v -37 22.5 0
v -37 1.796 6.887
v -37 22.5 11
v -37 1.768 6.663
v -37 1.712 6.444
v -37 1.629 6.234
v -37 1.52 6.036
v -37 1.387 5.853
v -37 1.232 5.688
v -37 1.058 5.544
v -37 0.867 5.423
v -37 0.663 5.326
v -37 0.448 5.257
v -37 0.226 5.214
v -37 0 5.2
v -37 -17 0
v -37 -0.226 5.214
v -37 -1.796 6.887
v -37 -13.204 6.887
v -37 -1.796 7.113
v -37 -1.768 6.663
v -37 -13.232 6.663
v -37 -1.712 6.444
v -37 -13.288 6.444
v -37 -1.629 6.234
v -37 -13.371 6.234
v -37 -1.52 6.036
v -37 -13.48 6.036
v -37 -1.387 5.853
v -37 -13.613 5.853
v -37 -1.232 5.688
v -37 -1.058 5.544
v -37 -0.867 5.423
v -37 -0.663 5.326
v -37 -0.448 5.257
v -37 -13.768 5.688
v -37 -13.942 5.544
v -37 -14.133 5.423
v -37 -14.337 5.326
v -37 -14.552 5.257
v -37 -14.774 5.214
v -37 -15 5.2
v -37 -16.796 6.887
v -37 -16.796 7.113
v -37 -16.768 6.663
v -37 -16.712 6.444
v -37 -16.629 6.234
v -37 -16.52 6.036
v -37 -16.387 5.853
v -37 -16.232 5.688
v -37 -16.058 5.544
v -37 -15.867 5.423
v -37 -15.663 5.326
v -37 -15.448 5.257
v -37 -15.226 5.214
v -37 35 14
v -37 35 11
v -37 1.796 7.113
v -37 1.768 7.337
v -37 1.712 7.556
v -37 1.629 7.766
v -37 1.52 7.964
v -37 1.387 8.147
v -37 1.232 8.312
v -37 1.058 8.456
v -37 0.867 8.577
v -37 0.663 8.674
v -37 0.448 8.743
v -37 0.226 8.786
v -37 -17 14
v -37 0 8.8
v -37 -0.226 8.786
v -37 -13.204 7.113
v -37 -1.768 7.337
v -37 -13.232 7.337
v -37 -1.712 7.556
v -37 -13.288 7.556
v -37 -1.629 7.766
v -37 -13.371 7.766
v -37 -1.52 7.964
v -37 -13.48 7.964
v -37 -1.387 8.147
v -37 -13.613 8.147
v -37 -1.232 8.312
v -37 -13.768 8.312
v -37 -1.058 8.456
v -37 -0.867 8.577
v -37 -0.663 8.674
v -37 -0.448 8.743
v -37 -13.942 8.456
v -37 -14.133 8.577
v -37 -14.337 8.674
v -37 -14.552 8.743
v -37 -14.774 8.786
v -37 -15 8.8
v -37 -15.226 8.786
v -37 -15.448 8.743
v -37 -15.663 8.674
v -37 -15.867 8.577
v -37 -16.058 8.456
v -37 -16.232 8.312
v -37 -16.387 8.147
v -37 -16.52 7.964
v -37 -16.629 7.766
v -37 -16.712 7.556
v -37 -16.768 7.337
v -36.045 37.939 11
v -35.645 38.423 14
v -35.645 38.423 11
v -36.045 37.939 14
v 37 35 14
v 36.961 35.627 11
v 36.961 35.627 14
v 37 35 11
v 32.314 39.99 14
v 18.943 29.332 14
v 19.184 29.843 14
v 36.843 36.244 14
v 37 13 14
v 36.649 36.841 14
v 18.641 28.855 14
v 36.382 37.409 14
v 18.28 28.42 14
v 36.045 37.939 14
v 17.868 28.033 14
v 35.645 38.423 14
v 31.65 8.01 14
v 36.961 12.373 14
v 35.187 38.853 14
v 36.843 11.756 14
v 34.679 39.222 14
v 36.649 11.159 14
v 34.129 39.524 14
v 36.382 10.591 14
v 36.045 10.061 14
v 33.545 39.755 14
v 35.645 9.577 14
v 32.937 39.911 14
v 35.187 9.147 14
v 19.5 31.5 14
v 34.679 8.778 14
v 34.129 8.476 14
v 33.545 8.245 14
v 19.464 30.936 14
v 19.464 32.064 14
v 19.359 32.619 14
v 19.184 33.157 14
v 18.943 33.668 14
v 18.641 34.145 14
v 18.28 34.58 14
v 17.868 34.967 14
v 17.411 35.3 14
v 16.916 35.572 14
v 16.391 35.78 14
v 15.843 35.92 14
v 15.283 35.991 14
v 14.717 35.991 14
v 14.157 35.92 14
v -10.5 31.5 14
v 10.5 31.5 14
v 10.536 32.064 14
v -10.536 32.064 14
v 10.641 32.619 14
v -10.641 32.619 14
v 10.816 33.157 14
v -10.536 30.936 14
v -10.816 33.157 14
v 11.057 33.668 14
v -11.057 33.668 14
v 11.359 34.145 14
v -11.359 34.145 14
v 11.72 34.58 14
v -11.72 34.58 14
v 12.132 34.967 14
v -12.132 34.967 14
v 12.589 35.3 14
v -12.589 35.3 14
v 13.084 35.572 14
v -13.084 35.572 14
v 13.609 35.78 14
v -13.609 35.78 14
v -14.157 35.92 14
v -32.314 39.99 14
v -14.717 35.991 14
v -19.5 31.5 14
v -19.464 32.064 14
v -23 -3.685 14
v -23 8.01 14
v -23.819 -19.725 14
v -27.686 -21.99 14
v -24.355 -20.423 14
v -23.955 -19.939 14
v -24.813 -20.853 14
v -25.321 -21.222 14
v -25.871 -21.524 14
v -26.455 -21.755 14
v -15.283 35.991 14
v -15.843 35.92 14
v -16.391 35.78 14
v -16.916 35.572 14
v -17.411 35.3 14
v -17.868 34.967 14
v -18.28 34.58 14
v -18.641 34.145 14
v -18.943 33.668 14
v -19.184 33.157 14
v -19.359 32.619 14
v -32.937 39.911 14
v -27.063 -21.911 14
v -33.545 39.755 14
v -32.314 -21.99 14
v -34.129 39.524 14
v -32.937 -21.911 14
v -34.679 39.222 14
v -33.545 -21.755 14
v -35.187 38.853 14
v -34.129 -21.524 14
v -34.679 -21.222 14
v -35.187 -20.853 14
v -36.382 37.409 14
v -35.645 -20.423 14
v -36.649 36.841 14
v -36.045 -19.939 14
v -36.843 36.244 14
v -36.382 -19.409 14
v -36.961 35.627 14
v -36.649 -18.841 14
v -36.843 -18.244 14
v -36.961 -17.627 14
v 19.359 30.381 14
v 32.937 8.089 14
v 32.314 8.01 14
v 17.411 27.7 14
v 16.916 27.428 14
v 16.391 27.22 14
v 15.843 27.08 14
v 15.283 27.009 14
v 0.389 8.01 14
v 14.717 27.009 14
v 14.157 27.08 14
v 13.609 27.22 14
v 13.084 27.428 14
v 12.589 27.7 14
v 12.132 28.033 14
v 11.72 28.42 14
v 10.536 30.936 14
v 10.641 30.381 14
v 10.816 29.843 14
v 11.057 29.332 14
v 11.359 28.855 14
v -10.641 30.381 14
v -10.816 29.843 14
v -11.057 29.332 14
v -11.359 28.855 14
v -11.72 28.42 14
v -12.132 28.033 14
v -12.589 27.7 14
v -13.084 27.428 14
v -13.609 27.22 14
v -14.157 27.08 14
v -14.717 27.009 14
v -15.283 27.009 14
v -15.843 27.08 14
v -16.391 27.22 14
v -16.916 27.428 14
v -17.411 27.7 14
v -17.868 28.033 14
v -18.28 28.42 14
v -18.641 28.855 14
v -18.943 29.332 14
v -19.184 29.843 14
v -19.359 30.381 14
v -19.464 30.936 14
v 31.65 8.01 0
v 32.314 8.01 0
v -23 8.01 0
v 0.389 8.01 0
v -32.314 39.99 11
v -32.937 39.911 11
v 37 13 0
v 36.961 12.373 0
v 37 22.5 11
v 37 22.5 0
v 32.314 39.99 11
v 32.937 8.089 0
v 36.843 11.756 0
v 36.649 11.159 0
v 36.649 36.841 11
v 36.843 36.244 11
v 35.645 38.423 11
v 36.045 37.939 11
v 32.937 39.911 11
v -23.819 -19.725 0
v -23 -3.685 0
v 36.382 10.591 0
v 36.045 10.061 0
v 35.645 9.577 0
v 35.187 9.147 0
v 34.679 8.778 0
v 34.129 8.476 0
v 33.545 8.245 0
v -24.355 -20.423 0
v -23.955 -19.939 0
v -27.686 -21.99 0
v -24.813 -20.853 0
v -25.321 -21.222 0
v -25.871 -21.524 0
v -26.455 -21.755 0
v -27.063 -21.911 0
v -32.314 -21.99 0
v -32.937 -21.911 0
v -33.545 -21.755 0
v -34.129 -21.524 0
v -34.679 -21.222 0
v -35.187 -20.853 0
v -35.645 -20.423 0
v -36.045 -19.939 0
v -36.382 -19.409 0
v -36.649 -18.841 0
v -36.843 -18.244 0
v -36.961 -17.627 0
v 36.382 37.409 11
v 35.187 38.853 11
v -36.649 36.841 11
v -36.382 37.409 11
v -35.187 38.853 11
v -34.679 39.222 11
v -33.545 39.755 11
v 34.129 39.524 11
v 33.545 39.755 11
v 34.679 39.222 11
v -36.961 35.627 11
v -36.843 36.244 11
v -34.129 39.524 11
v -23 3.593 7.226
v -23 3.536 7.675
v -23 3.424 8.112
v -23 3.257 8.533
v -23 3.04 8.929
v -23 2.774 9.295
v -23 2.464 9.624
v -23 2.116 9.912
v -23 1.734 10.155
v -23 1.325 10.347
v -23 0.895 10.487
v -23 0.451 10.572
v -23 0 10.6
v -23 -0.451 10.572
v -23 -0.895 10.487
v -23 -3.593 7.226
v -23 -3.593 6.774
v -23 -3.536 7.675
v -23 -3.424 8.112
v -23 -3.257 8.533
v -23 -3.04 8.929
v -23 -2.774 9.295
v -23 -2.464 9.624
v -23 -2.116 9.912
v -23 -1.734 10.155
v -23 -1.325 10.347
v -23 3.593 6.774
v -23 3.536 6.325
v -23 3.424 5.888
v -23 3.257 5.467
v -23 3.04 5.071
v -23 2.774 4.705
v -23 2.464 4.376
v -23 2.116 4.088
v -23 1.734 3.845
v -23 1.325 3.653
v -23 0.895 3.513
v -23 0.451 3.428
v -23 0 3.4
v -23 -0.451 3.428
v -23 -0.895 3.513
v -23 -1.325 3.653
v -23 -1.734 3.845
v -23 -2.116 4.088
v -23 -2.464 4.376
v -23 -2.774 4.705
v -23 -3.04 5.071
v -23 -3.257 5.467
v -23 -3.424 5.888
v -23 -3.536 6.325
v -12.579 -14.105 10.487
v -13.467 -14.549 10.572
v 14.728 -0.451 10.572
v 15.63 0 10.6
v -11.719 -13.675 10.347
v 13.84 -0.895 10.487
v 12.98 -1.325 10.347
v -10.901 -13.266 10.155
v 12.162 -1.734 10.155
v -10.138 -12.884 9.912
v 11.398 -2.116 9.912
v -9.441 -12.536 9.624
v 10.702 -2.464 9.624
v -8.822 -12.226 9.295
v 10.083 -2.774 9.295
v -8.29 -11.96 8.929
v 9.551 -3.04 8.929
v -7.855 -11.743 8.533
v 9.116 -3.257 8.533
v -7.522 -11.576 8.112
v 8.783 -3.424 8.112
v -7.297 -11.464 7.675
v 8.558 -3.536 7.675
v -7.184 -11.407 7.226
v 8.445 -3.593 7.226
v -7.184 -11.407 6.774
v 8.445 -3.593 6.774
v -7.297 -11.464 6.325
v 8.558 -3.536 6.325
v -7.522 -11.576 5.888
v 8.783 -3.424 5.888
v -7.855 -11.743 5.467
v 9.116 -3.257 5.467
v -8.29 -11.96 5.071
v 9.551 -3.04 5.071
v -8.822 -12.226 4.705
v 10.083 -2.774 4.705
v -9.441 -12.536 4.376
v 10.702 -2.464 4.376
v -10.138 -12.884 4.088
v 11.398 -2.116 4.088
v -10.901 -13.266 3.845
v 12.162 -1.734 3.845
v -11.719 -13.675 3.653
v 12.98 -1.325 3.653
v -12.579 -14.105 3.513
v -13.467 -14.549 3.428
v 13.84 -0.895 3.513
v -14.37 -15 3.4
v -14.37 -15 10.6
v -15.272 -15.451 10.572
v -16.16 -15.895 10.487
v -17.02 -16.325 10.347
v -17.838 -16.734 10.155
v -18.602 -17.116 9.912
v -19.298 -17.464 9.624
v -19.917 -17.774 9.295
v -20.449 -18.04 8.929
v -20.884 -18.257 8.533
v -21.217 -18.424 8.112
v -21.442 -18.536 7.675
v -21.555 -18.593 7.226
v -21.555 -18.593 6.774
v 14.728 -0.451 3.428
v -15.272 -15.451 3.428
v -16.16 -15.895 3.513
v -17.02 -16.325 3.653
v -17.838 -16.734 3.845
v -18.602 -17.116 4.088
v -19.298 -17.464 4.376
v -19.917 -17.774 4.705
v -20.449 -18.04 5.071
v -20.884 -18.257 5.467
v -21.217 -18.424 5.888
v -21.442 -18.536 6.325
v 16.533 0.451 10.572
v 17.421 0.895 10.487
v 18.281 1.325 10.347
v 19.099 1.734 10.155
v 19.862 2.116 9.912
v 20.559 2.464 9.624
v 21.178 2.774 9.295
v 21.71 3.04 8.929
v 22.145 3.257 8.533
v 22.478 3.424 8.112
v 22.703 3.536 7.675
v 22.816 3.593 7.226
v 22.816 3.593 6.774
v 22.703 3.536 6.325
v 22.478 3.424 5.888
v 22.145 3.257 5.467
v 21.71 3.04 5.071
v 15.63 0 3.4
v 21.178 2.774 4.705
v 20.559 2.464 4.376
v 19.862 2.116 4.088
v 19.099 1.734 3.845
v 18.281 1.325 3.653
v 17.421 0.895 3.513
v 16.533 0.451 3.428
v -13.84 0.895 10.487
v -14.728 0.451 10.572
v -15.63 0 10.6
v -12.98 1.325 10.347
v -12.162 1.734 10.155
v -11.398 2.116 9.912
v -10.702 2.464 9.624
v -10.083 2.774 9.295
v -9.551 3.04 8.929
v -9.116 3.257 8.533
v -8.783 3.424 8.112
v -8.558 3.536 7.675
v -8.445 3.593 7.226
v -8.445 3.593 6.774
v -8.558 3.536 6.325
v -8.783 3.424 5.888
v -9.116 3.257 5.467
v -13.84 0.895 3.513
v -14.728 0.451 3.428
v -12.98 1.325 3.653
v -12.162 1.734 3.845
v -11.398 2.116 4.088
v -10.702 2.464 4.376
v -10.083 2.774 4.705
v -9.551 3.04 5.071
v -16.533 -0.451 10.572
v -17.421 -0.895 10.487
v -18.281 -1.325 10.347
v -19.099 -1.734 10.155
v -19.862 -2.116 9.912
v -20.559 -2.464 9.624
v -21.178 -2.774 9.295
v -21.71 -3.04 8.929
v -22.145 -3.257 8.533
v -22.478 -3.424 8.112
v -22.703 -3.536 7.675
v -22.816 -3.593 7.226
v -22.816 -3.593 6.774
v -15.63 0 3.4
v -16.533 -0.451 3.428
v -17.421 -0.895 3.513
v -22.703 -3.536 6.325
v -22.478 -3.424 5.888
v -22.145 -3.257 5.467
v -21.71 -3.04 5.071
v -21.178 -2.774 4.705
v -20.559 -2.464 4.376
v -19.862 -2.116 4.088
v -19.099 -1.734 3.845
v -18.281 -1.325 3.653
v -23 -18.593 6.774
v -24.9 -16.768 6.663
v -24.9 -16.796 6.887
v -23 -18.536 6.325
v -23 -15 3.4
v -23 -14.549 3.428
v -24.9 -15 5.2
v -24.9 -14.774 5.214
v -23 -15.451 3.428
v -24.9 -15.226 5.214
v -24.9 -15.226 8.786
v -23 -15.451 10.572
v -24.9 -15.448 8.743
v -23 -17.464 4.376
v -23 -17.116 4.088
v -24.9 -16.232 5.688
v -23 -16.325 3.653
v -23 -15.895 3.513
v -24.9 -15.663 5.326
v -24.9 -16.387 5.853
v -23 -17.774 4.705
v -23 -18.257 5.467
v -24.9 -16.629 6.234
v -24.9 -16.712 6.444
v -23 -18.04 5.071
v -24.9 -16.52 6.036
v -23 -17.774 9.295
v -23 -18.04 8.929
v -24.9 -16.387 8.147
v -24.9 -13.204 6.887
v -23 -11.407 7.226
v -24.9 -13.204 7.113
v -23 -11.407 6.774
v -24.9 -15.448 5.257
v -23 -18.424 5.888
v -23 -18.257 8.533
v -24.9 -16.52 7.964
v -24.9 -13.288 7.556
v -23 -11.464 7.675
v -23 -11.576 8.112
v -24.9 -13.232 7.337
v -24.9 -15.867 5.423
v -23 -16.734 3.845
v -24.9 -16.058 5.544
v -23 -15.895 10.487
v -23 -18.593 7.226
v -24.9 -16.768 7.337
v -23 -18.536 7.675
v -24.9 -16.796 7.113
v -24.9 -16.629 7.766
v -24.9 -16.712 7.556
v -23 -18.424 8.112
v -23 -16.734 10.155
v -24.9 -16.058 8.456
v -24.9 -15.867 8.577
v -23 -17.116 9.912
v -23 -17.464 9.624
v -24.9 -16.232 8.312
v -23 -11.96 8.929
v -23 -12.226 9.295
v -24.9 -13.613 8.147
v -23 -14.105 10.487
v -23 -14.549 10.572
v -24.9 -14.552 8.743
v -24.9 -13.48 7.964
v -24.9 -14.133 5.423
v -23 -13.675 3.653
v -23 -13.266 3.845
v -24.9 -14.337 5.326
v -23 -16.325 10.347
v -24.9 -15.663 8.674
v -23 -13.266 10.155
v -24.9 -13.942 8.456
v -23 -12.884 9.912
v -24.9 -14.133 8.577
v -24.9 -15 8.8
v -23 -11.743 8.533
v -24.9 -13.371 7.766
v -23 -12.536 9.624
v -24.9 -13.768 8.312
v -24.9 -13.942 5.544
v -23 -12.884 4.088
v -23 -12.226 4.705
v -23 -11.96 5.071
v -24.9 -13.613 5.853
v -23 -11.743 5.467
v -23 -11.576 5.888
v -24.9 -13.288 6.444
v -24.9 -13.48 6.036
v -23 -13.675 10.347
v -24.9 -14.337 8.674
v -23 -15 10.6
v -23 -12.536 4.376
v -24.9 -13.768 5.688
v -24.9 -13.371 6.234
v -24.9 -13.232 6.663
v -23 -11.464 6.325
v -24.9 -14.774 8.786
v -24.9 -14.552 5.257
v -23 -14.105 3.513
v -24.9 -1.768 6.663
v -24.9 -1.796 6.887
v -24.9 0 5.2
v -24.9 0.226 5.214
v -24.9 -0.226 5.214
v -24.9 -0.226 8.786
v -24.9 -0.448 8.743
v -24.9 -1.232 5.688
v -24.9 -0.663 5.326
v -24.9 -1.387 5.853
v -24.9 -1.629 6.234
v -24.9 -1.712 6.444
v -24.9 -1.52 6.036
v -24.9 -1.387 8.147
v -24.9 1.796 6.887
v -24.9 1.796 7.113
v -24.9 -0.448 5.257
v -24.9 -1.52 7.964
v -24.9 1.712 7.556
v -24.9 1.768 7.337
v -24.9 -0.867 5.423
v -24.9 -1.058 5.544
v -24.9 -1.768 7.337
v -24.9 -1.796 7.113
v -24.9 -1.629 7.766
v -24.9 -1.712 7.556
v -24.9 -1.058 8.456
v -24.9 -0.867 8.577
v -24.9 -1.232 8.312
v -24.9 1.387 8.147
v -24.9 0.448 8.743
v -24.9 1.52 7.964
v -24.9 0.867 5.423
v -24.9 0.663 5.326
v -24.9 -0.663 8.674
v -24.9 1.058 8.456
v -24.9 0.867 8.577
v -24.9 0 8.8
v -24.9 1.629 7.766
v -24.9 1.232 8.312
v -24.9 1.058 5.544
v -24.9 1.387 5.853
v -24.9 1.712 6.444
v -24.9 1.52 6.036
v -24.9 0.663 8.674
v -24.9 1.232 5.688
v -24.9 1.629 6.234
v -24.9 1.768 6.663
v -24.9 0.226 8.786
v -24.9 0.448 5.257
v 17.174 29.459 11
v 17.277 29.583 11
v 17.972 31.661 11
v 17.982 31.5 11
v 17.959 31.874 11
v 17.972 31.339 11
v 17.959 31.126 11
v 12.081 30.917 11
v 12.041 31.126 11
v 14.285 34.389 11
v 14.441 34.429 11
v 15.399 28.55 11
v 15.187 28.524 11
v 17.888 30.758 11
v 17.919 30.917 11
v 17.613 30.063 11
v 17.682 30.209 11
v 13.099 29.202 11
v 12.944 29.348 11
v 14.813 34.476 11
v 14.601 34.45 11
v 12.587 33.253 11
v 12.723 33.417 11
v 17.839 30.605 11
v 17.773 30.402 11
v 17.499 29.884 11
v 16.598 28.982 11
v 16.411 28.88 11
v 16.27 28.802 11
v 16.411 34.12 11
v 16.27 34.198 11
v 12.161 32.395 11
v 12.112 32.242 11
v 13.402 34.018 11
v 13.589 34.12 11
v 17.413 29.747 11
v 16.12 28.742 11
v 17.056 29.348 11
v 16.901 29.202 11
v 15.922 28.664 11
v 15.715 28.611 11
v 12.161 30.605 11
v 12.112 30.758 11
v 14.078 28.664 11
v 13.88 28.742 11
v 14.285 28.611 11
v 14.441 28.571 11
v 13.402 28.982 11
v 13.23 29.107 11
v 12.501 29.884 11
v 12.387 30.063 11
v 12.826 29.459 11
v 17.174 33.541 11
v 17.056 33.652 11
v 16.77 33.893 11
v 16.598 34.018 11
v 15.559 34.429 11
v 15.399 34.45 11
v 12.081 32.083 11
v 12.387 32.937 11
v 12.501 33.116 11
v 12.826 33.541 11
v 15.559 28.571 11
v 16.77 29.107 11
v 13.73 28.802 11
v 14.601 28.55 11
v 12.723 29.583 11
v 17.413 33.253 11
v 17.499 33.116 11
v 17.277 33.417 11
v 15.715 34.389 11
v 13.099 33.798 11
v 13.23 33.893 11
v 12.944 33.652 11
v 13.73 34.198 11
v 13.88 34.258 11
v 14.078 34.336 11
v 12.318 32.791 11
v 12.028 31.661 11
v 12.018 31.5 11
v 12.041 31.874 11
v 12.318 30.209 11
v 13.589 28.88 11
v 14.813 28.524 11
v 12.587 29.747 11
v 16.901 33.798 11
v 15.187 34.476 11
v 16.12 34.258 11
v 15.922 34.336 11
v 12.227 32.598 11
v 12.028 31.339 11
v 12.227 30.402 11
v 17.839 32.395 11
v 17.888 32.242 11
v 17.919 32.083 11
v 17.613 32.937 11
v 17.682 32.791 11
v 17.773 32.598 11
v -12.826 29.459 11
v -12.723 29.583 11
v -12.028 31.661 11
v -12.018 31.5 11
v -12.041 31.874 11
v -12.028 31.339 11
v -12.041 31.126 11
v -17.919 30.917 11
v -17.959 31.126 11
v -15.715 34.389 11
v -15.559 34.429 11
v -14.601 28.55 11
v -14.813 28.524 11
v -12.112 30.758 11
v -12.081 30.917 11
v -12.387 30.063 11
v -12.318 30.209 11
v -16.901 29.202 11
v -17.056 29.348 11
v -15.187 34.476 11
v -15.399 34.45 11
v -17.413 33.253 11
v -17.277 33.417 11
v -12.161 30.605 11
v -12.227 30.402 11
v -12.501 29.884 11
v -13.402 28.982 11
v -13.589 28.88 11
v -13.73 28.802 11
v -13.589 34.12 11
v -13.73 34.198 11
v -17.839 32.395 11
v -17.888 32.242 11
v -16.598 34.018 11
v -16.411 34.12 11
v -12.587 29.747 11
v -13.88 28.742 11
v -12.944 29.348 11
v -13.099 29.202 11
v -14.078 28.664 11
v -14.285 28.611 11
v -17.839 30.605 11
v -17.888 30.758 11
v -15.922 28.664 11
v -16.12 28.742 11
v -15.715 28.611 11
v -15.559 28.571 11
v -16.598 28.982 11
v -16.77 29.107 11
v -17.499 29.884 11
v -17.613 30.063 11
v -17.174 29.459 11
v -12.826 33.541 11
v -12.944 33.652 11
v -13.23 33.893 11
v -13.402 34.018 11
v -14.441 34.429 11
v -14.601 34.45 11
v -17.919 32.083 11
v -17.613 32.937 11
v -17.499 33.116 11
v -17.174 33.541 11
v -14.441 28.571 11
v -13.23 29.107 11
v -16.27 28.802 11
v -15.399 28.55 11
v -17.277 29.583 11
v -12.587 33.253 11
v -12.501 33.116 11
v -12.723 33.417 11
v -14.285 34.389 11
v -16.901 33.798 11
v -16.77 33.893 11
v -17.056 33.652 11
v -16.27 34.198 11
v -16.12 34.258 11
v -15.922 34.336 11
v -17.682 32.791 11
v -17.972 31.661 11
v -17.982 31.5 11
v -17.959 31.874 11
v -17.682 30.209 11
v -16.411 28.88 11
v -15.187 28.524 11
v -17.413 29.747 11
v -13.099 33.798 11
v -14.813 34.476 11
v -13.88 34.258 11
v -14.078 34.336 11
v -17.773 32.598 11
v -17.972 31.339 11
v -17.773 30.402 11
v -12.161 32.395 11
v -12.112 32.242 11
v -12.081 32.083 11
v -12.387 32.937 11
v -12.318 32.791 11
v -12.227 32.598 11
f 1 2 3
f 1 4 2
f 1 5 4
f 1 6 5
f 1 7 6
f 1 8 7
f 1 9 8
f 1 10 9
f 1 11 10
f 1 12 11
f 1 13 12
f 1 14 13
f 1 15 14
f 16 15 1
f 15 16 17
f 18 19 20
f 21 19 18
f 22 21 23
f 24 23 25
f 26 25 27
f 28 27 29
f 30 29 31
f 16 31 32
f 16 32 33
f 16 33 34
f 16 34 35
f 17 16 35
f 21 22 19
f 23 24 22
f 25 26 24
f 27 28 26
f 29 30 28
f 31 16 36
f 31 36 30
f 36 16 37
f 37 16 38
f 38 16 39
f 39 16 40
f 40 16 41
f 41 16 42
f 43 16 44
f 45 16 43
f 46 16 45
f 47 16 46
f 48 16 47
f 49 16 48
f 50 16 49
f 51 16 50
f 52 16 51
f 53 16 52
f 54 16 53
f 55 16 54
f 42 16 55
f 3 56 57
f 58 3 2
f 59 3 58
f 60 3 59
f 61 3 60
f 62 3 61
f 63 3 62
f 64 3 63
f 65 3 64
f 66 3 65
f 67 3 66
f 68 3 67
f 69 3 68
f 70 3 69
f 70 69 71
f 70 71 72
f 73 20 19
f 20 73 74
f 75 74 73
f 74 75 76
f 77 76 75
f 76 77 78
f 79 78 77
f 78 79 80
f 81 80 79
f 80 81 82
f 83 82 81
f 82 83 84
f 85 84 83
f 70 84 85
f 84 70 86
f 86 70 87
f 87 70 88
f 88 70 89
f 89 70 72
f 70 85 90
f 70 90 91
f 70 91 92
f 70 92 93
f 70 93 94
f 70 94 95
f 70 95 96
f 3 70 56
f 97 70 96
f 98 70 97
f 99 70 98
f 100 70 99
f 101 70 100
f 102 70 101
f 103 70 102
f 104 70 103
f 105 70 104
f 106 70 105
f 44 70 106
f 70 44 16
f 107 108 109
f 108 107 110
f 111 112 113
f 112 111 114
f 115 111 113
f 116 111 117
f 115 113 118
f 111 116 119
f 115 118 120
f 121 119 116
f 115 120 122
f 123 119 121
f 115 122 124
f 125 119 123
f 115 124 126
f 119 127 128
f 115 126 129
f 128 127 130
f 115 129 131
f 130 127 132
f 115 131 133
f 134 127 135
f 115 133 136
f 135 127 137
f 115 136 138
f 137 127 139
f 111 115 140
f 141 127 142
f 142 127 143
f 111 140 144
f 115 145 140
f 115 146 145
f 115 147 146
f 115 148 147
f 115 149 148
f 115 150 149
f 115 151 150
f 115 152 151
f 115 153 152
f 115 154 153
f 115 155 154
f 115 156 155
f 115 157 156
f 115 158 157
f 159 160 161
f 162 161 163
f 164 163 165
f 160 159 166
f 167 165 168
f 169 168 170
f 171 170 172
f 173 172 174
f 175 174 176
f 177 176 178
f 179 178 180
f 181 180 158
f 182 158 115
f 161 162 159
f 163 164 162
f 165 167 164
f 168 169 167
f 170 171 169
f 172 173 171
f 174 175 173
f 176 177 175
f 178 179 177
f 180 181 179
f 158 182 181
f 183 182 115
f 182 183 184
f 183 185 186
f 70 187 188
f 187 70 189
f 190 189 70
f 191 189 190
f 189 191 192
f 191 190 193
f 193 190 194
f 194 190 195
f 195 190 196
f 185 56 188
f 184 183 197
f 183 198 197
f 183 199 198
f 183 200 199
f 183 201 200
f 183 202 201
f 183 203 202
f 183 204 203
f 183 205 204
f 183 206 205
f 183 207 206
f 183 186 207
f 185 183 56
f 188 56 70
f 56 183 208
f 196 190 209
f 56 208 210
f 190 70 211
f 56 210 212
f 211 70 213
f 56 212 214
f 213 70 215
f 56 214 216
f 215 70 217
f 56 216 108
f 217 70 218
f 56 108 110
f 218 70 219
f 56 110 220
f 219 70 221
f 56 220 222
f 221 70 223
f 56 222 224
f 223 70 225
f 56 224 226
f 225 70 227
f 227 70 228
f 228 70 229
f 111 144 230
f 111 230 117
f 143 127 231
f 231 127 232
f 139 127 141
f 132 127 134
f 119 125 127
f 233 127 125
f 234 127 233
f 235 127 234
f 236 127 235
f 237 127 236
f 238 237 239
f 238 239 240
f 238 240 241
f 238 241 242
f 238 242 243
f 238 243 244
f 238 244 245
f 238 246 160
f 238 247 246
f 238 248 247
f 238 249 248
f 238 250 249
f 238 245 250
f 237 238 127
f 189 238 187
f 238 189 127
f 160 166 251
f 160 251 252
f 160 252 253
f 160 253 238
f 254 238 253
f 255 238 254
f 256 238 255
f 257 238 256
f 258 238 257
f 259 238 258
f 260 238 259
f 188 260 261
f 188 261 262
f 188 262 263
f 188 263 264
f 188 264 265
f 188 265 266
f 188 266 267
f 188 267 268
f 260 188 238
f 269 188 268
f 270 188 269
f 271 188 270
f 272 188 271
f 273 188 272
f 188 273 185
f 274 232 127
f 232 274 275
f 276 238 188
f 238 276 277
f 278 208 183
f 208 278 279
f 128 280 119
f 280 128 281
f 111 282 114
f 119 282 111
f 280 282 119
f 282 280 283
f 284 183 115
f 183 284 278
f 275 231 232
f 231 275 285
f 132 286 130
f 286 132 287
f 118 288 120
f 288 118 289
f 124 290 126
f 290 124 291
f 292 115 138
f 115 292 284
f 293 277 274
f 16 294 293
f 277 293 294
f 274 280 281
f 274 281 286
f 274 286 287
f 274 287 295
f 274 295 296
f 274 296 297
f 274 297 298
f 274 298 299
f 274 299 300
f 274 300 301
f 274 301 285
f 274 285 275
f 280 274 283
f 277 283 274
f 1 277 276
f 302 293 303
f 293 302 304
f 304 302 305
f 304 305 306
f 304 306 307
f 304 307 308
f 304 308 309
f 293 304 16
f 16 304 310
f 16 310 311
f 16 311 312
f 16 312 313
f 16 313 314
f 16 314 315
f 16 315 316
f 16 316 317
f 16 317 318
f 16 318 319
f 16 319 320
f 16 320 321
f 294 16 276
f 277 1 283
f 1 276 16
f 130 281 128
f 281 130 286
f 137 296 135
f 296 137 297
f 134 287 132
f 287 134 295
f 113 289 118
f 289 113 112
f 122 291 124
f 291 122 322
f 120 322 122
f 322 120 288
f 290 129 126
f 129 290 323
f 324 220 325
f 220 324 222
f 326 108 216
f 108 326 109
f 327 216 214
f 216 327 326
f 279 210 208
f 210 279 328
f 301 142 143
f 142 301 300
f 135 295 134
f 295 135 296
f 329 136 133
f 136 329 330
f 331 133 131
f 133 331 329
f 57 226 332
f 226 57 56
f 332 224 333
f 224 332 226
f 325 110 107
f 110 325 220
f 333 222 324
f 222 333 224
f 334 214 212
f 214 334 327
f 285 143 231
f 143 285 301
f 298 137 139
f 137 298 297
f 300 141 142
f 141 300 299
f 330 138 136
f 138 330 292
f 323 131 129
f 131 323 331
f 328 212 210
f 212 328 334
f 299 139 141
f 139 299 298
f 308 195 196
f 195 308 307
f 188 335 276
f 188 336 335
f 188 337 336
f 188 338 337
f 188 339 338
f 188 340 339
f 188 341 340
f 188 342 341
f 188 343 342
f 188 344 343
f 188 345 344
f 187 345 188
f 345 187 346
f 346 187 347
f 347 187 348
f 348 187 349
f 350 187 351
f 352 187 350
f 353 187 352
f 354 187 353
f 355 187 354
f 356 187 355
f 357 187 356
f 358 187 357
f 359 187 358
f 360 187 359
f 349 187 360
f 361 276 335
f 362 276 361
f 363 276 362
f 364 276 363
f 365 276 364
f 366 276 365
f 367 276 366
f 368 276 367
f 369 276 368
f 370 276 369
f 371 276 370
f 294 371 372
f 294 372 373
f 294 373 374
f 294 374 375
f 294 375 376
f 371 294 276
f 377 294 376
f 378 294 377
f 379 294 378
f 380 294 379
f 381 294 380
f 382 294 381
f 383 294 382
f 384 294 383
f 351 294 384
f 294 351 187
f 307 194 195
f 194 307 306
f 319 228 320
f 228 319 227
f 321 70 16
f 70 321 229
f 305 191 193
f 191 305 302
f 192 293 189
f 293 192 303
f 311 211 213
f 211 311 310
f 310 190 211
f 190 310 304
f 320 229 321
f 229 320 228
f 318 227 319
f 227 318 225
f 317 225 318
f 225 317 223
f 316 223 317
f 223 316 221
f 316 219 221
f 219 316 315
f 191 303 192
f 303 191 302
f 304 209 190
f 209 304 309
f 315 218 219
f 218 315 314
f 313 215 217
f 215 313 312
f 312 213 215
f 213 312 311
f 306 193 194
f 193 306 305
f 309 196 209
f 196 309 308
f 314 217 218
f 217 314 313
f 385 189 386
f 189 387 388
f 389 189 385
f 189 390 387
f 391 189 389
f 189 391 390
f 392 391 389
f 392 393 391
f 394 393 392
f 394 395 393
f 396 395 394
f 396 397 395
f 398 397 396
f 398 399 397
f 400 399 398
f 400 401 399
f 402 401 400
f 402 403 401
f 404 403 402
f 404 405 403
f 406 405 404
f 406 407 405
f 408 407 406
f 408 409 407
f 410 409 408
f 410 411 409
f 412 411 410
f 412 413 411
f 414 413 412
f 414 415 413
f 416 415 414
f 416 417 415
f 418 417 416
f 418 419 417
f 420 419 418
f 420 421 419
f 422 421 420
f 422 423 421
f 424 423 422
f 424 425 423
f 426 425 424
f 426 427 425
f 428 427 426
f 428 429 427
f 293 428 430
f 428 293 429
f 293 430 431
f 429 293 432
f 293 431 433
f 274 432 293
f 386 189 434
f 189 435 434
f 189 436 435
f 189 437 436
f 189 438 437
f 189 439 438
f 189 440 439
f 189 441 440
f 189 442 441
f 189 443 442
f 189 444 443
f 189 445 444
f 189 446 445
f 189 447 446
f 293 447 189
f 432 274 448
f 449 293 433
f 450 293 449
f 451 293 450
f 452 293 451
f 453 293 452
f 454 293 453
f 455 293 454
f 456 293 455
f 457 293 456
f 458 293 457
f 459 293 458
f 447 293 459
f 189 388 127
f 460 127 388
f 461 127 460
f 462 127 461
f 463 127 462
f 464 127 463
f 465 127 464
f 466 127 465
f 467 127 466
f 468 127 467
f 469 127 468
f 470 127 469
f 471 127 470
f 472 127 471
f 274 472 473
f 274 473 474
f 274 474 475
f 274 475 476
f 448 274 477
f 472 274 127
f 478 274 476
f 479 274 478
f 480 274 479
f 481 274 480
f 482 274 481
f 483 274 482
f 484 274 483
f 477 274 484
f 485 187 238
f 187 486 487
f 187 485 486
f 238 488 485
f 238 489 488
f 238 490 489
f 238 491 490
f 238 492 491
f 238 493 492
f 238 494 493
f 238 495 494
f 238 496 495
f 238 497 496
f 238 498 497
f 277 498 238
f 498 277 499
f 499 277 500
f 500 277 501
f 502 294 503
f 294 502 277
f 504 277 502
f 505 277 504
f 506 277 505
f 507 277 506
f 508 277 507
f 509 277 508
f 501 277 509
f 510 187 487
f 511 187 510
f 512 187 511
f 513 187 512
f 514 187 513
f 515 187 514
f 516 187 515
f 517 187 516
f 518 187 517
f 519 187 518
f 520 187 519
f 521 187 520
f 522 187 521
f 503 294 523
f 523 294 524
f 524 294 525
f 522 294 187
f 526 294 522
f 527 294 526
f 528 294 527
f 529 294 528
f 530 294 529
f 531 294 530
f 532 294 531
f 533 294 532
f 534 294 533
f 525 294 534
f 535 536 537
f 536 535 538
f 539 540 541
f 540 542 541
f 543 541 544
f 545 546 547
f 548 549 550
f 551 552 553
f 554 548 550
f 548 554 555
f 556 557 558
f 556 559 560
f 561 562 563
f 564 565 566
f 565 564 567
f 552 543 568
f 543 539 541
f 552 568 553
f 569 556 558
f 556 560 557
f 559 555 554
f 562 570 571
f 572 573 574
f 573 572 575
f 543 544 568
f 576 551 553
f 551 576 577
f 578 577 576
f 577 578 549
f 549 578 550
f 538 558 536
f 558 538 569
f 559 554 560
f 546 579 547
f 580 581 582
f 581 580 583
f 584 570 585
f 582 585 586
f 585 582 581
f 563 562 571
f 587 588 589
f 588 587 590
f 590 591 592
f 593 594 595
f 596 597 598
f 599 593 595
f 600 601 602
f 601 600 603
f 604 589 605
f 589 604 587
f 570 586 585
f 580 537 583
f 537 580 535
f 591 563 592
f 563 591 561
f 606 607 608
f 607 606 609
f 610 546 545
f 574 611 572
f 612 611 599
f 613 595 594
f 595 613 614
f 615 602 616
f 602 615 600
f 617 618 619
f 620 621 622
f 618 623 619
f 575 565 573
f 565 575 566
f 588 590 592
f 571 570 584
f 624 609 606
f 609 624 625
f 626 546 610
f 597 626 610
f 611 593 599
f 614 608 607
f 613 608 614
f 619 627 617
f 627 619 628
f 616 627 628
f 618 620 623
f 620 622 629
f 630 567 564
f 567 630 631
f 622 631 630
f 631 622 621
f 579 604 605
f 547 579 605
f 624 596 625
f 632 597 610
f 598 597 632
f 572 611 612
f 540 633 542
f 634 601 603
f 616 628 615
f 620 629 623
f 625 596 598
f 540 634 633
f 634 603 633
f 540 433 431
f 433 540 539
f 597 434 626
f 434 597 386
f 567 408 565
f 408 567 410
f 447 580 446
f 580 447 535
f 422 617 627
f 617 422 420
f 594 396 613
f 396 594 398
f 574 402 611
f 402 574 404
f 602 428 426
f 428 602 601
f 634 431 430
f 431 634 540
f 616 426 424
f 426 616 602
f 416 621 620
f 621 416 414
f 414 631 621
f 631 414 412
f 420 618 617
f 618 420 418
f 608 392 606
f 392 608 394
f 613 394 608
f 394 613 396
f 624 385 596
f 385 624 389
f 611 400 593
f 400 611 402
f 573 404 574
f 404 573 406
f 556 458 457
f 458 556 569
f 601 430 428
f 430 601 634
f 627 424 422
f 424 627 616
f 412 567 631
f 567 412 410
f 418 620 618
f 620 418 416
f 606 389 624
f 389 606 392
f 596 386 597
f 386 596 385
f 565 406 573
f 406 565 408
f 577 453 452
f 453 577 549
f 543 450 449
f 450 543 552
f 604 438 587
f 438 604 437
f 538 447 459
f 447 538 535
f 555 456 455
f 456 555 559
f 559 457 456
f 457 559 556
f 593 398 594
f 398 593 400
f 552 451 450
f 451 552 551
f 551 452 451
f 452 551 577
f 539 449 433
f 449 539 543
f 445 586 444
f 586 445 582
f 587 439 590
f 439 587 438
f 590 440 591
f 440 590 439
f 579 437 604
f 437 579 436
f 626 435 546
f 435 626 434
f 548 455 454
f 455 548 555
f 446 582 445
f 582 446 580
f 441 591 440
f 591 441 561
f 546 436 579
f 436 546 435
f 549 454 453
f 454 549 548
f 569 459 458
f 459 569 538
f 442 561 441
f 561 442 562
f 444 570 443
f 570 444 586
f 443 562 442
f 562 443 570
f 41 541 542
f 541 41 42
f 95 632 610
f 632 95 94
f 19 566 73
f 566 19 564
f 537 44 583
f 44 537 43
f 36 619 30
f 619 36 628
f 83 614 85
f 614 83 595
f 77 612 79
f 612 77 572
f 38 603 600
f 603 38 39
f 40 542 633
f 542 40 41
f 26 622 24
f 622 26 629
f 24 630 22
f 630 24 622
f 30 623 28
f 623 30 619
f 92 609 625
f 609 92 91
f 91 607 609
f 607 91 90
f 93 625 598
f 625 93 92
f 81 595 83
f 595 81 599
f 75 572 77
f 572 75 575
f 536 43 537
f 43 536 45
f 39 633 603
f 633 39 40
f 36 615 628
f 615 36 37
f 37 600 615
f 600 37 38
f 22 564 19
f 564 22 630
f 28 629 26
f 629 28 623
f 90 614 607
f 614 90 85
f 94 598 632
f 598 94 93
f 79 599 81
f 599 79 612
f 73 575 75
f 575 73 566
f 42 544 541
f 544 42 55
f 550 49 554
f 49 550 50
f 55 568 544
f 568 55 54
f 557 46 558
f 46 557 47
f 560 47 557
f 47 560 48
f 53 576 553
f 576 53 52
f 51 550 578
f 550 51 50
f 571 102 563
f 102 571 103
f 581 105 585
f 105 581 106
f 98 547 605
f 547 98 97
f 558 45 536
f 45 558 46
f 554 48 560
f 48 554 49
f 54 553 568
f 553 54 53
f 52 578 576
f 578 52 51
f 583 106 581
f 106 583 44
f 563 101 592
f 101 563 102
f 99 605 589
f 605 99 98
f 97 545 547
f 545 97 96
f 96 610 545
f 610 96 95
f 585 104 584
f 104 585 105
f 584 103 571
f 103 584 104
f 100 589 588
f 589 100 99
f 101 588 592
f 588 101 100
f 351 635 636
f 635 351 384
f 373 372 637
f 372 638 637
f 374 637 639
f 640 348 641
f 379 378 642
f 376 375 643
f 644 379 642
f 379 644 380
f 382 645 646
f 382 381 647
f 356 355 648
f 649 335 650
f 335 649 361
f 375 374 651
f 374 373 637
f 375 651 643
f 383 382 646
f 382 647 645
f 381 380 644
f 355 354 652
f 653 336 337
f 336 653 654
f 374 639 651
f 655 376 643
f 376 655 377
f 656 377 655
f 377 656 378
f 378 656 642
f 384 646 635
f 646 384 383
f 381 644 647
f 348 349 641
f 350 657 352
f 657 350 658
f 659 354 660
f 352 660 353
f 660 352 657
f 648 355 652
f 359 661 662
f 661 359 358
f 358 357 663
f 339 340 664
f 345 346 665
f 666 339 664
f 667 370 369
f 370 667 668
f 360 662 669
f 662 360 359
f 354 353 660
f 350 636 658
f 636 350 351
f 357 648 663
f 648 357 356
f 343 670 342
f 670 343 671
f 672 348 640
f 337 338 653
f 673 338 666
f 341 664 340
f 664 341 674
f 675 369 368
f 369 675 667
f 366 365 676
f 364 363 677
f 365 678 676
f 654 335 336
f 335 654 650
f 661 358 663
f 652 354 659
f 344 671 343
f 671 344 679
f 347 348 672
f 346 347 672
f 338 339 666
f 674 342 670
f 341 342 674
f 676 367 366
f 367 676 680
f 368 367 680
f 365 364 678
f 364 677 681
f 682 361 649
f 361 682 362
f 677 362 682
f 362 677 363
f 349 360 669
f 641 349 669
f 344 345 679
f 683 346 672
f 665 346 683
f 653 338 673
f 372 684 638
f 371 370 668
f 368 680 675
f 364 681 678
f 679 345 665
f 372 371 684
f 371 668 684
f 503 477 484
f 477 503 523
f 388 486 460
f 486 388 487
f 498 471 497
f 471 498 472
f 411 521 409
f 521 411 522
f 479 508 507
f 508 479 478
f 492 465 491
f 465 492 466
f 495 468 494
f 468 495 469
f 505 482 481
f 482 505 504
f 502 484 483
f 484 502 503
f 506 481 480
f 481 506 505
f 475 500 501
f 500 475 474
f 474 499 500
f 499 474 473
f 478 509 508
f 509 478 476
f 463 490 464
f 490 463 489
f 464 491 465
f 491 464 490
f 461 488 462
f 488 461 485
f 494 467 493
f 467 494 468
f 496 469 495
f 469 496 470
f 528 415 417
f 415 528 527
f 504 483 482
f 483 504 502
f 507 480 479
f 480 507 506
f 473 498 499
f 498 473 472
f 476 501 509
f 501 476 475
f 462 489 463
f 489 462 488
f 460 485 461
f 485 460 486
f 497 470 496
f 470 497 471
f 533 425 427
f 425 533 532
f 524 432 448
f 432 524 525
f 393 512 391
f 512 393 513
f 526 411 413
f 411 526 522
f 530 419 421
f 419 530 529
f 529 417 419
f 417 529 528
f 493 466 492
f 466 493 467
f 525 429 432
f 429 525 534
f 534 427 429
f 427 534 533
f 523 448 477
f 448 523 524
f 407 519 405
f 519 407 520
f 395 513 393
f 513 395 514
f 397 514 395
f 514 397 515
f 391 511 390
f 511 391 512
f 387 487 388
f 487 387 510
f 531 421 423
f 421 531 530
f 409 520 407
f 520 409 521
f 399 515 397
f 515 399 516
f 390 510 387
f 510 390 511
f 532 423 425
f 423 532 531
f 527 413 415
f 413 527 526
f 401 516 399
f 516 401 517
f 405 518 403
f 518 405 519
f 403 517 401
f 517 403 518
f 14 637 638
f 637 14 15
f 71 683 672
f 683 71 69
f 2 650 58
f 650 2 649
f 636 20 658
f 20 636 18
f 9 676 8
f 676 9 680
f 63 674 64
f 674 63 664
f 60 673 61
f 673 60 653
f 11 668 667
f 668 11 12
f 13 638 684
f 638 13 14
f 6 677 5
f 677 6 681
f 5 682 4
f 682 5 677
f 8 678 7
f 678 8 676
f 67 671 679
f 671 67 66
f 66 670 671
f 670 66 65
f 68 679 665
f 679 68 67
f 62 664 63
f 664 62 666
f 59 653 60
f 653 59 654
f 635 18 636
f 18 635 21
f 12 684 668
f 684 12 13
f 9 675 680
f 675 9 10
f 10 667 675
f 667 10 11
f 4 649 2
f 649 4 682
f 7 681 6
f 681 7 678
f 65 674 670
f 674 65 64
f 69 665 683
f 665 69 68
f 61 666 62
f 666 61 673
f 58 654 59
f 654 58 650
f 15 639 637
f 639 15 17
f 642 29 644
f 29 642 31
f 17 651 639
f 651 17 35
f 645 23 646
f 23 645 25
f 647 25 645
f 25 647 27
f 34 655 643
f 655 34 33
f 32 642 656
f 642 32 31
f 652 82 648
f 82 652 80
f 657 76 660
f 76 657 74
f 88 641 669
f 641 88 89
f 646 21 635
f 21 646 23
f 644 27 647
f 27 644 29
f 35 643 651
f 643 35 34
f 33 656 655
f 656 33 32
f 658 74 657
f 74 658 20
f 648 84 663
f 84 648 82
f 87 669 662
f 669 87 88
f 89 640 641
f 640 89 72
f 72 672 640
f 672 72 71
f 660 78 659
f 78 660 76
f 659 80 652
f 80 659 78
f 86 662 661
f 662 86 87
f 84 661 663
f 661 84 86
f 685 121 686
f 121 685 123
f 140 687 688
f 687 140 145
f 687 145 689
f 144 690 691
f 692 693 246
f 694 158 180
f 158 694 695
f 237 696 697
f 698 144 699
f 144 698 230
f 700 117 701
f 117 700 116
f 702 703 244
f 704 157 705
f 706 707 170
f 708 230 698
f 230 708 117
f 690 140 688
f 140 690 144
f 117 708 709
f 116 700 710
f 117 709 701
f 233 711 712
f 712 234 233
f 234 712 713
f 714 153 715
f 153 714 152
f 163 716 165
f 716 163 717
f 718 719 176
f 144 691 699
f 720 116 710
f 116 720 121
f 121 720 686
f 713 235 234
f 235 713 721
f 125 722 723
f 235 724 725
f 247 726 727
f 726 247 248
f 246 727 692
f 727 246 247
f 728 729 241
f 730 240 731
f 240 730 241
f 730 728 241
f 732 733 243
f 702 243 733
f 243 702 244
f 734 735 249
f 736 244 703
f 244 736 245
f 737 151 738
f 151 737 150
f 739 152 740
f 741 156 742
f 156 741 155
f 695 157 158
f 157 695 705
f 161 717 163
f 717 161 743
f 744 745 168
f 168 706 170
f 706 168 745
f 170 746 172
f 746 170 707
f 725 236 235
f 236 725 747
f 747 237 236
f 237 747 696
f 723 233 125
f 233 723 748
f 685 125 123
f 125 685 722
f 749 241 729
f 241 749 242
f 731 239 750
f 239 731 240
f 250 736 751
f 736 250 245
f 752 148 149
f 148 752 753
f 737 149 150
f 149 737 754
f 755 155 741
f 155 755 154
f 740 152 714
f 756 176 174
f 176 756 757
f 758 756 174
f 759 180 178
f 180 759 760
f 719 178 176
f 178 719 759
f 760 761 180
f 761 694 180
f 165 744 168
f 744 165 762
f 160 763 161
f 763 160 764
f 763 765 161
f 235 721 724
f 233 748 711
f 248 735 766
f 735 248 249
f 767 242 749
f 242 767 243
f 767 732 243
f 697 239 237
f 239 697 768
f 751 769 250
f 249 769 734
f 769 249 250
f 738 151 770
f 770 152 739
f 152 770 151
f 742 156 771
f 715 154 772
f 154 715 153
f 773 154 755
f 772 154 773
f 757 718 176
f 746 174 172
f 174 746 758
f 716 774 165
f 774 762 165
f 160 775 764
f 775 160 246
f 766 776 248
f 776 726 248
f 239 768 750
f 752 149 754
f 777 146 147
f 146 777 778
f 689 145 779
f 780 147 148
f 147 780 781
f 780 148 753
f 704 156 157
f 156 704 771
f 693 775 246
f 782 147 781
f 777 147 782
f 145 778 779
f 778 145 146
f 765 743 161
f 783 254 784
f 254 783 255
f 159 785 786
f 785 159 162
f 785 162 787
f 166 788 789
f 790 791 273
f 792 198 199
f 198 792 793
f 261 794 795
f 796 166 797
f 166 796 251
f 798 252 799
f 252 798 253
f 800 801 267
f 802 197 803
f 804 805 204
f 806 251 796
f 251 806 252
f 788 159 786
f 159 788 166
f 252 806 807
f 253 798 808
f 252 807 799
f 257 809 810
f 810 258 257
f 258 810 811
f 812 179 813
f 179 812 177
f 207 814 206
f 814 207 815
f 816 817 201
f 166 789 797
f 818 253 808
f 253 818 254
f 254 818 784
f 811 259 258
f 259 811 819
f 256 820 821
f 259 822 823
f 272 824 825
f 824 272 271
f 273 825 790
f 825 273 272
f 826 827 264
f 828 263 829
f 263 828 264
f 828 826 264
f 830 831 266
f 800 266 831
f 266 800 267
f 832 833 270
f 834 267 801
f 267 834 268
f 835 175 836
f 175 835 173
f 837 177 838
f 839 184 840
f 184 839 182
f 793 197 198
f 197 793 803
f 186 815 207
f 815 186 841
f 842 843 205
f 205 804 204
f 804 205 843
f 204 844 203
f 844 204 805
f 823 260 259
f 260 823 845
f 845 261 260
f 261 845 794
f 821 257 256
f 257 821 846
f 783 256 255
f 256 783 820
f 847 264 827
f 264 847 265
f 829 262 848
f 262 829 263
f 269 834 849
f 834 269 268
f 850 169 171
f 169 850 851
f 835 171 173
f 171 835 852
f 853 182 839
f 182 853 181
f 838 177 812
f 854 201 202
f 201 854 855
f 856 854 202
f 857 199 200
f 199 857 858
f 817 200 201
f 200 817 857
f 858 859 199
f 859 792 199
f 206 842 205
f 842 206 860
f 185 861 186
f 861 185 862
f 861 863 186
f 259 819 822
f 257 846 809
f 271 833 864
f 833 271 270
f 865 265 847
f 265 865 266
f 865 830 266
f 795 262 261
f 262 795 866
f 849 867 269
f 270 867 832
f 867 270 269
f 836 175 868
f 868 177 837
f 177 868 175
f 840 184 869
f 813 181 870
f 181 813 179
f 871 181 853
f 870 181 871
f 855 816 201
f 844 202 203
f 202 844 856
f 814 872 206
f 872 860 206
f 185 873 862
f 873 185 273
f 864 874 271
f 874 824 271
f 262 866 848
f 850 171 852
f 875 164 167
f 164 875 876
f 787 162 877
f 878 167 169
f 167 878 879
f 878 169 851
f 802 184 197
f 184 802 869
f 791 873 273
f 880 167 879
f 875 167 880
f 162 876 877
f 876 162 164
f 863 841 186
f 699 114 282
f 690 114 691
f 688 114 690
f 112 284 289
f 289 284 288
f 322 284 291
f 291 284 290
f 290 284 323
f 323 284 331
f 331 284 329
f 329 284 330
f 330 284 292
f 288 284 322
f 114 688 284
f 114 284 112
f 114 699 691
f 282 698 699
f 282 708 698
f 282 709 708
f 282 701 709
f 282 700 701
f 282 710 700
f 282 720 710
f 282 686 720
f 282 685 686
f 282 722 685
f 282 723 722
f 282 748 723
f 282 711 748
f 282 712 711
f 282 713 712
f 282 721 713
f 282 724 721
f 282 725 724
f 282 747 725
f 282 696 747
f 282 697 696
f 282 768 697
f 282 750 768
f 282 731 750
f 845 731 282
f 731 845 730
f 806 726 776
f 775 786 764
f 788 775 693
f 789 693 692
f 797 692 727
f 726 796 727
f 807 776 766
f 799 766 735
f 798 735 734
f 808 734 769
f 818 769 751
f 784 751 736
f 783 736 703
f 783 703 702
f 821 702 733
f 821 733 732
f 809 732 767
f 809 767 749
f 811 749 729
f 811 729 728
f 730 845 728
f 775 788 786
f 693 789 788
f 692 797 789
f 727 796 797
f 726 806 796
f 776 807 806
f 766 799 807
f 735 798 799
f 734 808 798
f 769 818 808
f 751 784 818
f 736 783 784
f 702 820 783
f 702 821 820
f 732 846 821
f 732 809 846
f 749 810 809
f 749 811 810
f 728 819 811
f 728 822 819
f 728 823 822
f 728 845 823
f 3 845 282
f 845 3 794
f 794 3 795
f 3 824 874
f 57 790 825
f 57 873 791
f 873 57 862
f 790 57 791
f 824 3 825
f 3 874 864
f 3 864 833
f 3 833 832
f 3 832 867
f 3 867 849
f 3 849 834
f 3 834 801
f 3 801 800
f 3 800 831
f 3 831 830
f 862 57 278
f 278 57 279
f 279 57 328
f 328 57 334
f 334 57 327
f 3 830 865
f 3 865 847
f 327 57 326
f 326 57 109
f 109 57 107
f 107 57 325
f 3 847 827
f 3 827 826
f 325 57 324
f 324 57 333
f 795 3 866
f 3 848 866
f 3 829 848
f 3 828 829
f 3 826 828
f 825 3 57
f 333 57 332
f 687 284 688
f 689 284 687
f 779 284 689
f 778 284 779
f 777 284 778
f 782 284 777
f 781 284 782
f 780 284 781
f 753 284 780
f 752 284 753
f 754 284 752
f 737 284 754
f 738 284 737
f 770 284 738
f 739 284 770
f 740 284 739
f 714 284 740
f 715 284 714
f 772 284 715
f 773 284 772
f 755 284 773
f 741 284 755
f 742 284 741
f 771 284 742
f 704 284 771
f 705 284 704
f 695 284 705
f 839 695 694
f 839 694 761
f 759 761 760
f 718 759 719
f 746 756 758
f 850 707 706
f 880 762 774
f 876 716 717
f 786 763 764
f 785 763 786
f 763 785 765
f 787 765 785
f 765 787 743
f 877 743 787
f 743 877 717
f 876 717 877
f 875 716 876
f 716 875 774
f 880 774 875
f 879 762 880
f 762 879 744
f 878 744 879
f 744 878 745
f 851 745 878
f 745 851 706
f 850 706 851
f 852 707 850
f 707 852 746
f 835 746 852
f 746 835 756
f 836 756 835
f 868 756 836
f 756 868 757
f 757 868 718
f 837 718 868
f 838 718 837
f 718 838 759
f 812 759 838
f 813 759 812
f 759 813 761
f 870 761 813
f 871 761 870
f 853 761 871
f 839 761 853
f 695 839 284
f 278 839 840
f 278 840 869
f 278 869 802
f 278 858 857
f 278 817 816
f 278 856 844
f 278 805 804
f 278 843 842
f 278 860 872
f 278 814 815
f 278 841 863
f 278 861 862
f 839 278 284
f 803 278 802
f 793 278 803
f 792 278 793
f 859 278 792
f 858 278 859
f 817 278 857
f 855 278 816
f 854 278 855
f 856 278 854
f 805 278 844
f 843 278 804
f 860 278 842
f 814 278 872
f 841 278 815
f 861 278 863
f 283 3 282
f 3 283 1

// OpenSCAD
$fn = 50;


difference() {
	union() {
		translate(v = [0, 24.0000000000, 0]) {
			hull() {
				translate(v = [-32.0000000000, 11.0000000000, 0]) {
					cylinder(h = 14, r = 5);
				}
				translate(v = [32.0000000000, 11.0000000000, 0]) {
					cylinder(h = 14, r = 5);
				}
				translate(v = [-32.0000000000, -11.0000000000, 0]) {
					cylinder(h = 14, r = 5);
				}
				translate(v = [32.0000000000, -11.0000000000, 0]) {
					cylinder(h = 14, r = 5);
				}
			}
		}
		translate(v = [-30.0000000000, 0, 0]) {
			hull() {
				translate(v = [-2.0000000000, 17.0000000000, 0]) {
					cylinder(h = 14, r = 5);
				}
				translate(v = [2.0000000000, 17.0000000000, 0]) {
					cylinder(h = 14, r = 5);
				}
				translate(v = [-2.0000000000, -17.0000000000, 0]) {
					cylinder(h = 14, r = 5);
				}
				translate(v = [2.0000000000, -17.0000000000, 0]) {
					cylinder(h = 14, r = 5);
				}
			}
		}
		rotate(a = [0, 0, 26.5650511771]) {
			hull() {
				translate(v = [-33.0410196625, 2.0000000000, 0]) {
					cylinder(h = 14, r = 5);
				}
				translate(v = [33.0410196625, 2.0000000000, 0]) {
					cylinder(h = 14, r = 5);
				}
				translate(v = [-33.0410196625, -2.0000000000, 0]) {
					cylinder(h = 14, r = 5);
				}
				translate(v = [33.0410196625, -2.0000000000, 0]) {
					cylinder(h = 14, r = 5);
				}
			}
		}
	}
	union() {
		translate(v = [-23.0000000000, -15.0000000000, 7.0000000000]) {
			rotate(a = [0, 90, 0]) {
				difference() {
					union() {
						#translate(v = [0, 0, -14.0000000000]) {
							cylinder(h = 14, r = 1.5000000000);
						}
						#translate(v = [0, 0, -1.9000000000]) {
							cylinder(h = 1.9000000000, r1 = 1.8000000000, r2 = 3.6000000000);
						}
						#cylinder(h = 250, r = 3.6000000000);
						#translate(v = [0, 0, -14.0000000000]) {
							cylinder(h = 14, r = 1.8000000000);
						}
						#translate(v = [0, 0, -14.0000000000]) {
							cylinder(h = 14, r = 1.5000000000);
						}
					}
					union();
				}
			}
		}
		translate(v = [-23.0000000000, 0.0000000000, 7.0000000000]) {
			rotate(a = [0, 90, 0]) {
				difference() {
					union() {
						#translate(v = [0, 0, -14.0000000000]) {
							cylinder(h = 14, r = 1.5000000000);
						}
						#translate(v = [0, 0, -1.9000000000]) {
							cylinder(h = 1.9000000000, r1 = 1.8000000000, r2 = 3.6000000000);
						}
						#cylinder(h = 250, r = 3.6000000000);
						#translate(v = [0, 0, -14.0000000000]) {
							cylinder(h = 14, r = 1.8000000000);
						}
						#translate(v = [0, 0, -14.0000000000]) {
							cylinder(h = 14, r = 1.5000000000);
						}
					}
					union();
				}
			}
		}
		translate(v = [15.0000000000, 31.5000000000, 14.0000000000]) {
			rotate(a = [0, 0, 0]) {
				difference() {
					union() {
						#translate(v = [0, 0, -14.0000000000]) {
							cylinder(h = 14, r = 2.2500000000);
						}
						#translate(v = [0, 0, -4.2000000000]) {
							cylinder(h = 4.2000000000, r1 = 2.3750000000, r2 = 4.5000000000);
						}
						#cylinder(h = 250, r = 4.5000000000);
						#translate(v = [0, 0, -14.0000000000]) {
							cylinder(h = 14, r = 2.3750000000);
						}
						#translate(v = [0, 0, -14.0000000000]) {
							cylinder(h = 14, r = 2.2500000000);
						}
					}
					union();
				}
			}
		}
		translate(v = [-15.0000000000, 31.5000000000, 14.0000000000]) {
			rotate(a = [0, 0, 0]) {
				difference() {
					union() {
						#translate(v = [0, 0, -14.0000000000]) {
							cylinder(h = 14, r = 2.2500000000);
						}
						#translate(v = [0, 0, -4.2000000000]) {
							cylinder(h = 4.2000000000, r1 = 2.3750000000, r2 = 4.5000000000);
						}
						#cylinder(h = 250, r = 4.5000000000);
						#translate(v = [0, 0, -14.0000000000]) {
							cylinder(h = 14, r = 2.3750000000);
						}
						#translate(v = [0, 0, -14.0000000000]) {
							cylinder(h = 14, r = 2.2500000000);
						}
					}
					union();
				}
			}
		}
		translate(v = [-37.0000000000, 22.5000000000, 0]) {
			cube(size = [74, 18, 11]);
		}
	}
}
